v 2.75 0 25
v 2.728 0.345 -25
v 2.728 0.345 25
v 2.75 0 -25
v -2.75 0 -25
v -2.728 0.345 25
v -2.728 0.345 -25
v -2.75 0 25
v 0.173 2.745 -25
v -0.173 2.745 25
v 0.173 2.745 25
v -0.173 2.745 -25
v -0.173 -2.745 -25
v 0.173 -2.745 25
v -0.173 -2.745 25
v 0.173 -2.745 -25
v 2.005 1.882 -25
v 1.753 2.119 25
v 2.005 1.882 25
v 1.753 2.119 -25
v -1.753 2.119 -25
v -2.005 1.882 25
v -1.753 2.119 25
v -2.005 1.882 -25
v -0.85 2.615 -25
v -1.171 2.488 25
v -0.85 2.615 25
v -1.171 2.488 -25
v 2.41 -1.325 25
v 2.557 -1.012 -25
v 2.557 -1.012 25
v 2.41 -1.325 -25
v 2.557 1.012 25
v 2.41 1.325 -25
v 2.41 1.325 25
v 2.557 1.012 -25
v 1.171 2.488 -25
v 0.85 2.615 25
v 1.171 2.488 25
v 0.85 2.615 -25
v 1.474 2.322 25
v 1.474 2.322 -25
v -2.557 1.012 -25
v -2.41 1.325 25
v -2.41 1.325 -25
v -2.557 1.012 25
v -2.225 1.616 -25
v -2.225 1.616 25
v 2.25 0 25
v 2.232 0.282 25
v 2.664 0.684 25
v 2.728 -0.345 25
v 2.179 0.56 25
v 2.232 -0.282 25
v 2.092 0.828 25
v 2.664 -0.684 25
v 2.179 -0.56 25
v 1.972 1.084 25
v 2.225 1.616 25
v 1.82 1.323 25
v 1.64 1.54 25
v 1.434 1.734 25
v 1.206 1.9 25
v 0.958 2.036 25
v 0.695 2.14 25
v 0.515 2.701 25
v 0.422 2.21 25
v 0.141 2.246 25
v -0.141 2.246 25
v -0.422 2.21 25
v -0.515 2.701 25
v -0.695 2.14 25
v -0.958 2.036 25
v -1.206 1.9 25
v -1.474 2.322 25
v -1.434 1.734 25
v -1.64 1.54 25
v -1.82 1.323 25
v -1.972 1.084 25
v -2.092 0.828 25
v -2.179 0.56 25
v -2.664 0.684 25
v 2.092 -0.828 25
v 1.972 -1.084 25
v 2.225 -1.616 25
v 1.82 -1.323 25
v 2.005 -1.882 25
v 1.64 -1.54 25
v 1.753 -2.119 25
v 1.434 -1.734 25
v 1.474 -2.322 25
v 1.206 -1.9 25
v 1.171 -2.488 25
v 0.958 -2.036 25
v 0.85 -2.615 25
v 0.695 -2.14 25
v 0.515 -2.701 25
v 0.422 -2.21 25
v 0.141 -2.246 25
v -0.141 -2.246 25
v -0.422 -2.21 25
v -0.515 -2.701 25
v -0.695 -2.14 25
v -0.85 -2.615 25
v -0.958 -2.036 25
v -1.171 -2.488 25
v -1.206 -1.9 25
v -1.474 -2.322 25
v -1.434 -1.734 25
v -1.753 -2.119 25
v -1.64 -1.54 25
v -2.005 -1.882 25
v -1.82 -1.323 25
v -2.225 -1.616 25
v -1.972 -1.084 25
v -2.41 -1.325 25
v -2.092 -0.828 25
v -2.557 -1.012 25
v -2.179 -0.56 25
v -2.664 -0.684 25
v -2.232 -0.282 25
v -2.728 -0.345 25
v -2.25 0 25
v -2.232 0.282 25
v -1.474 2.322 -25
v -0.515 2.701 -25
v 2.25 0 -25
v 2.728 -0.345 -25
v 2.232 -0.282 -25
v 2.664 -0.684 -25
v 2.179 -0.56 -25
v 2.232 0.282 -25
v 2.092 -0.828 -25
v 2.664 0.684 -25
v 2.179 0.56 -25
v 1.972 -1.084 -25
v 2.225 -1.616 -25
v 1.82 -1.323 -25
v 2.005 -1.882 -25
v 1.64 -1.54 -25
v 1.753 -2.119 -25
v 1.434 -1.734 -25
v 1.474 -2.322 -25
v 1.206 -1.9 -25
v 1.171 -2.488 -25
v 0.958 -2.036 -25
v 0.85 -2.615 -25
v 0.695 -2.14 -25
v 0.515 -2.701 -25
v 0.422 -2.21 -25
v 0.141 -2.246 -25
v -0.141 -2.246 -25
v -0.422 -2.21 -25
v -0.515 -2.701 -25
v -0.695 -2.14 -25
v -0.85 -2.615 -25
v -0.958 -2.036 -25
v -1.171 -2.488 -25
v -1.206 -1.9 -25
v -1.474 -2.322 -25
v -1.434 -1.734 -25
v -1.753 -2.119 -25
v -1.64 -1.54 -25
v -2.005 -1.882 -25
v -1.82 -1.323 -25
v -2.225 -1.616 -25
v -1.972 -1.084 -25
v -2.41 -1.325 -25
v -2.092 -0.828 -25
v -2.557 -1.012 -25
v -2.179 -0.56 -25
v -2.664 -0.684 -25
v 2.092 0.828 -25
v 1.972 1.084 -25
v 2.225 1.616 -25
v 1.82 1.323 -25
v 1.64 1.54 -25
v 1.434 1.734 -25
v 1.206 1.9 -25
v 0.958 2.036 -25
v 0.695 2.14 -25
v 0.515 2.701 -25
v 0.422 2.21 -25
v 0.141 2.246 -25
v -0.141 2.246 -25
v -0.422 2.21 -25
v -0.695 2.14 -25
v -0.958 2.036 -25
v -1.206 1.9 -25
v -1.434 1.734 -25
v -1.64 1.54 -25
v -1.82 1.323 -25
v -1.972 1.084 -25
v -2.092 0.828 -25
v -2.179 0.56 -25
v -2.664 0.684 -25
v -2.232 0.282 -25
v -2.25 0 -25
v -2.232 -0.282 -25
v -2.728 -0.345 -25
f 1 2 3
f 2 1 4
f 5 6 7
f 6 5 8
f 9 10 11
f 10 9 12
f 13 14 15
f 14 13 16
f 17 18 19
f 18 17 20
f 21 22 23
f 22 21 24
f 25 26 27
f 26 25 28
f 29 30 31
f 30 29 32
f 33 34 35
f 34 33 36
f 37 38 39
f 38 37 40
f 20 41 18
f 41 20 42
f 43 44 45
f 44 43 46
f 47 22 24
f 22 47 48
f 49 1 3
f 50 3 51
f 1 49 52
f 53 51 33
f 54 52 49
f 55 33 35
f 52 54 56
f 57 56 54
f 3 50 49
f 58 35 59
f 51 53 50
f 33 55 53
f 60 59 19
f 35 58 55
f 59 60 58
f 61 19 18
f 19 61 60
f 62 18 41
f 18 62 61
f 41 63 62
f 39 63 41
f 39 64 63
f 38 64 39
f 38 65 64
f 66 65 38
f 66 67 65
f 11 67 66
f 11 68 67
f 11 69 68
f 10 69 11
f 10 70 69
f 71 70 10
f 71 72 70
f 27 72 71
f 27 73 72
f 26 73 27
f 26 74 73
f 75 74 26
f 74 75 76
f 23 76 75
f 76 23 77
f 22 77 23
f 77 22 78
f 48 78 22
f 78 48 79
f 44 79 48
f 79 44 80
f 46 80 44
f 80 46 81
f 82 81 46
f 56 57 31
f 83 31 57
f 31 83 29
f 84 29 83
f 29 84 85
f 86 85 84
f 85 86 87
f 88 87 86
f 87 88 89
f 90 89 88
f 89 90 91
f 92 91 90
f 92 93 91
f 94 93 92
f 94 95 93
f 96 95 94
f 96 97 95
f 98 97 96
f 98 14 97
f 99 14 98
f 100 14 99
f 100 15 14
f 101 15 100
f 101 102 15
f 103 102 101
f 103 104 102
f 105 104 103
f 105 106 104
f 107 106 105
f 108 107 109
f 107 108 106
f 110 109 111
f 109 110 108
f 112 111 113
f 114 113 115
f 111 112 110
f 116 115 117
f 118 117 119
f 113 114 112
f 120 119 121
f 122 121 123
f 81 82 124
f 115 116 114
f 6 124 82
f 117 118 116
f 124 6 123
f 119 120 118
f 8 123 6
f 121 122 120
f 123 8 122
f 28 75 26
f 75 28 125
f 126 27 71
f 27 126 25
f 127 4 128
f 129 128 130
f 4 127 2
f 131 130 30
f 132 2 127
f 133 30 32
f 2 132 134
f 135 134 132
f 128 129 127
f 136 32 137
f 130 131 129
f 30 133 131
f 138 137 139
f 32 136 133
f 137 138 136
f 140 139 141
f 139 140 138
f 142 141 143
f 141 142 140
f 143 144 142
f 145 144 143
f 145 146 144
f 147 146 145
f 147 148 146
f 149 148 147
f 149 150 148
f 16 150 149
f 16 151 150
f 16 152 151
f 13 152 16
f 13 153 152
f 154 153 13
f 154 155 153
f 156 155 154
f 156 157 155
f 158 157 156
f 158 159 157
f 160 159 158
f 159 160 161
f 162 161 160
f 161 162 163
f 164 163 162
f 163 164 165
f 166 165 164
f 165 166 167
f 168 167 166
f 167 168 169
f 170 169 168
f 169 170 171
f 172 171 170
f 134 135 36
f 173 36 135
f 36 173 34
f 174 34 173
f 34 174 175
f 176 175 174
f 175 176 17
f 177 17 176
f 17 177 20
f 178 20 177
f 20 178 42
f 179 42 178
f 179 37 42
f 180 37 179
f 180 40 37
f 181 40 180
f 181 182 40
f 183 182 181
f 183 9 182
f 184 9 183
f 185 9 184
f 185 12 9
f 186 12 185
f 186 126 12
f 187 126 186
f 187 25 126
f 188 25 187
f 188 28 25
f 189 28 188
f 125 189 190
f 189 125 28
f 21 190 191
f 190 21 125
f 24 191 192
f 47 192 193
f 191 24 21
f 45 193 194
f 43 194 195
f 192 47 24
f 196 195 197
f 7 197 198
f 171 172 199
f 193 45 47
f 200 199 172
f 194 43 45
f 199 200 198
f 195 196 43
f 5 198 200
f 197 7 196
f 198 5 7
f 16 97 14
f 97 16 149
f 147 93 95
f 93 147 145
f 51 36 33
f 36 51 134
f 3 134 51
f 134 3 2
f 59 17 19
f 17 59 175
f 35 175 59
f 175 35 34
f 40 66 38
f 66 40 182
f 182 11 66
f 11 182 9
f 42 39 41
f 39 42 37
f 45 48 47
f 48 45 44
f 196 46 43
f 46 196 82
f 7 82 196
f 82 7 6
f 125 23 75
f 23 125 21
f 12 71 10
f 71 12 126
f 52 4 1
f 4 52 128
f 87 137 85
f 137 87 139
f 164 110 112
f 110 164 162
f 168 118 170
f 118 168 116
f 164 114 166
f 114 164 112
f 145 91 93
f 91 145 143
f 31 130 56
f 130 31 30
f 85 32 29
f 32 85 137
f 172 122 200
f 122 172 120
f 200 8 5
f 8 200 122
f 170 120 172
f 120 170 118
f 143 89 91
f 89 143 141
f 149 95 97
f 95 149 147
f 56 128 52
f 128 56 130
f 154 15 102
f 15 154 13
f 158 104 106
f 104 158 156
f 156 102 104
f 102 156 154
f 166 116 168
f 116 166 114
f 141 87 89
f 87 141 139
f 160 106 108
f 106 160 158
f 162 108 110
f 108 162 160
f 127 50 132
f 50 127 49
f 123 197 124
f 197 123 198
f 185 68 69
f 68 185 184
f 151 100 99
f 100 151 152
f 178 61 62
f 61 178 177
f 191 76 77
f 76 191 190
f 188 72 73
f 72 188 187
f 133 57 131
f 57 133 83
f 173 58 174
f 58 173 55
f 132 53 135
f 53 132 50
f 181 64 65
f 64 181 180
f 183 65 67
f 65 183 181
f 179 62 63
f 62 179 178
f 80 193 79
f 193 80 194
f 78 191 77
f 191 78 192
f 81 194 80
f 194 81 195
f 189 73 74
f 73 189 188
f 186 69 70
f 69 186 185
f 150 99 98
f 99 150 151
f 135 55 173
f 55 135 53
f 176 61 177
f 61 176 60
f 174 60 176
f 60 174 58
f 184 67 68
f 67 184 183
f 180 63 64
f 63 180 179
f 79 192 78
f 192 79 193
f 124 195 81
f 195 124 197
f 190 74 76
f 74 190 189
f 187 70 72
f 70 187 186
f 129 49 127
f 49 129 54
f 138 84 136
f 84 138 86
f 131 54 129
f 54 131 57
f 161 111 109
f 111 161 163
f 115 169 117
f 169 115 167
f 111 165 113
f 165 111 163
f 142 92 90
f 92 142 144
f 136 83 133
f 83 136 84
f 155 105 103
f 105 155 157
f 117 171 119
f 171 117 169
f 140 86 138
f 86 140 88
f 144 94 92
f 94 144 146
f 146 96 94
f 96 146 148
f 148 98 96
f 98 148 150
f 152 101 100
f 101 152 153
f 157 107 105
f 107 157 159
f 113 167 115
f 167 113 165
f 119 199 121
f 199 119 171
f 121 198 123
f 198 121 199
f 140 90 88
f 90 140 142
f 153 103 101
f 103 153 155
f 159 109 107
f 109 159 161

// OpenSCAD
$fn = 50;


difference() {
	union() {
		translate(v = [0, 0, -25.0000000000]) {
			cylinder(h = 50, r = 2.7500000000);
		}
	}
	union() {
		translate(v = [0, 0, -100.0000000000]) {
			cylinder(h = 200, r = 2.2500000000);
		}
	}
}
